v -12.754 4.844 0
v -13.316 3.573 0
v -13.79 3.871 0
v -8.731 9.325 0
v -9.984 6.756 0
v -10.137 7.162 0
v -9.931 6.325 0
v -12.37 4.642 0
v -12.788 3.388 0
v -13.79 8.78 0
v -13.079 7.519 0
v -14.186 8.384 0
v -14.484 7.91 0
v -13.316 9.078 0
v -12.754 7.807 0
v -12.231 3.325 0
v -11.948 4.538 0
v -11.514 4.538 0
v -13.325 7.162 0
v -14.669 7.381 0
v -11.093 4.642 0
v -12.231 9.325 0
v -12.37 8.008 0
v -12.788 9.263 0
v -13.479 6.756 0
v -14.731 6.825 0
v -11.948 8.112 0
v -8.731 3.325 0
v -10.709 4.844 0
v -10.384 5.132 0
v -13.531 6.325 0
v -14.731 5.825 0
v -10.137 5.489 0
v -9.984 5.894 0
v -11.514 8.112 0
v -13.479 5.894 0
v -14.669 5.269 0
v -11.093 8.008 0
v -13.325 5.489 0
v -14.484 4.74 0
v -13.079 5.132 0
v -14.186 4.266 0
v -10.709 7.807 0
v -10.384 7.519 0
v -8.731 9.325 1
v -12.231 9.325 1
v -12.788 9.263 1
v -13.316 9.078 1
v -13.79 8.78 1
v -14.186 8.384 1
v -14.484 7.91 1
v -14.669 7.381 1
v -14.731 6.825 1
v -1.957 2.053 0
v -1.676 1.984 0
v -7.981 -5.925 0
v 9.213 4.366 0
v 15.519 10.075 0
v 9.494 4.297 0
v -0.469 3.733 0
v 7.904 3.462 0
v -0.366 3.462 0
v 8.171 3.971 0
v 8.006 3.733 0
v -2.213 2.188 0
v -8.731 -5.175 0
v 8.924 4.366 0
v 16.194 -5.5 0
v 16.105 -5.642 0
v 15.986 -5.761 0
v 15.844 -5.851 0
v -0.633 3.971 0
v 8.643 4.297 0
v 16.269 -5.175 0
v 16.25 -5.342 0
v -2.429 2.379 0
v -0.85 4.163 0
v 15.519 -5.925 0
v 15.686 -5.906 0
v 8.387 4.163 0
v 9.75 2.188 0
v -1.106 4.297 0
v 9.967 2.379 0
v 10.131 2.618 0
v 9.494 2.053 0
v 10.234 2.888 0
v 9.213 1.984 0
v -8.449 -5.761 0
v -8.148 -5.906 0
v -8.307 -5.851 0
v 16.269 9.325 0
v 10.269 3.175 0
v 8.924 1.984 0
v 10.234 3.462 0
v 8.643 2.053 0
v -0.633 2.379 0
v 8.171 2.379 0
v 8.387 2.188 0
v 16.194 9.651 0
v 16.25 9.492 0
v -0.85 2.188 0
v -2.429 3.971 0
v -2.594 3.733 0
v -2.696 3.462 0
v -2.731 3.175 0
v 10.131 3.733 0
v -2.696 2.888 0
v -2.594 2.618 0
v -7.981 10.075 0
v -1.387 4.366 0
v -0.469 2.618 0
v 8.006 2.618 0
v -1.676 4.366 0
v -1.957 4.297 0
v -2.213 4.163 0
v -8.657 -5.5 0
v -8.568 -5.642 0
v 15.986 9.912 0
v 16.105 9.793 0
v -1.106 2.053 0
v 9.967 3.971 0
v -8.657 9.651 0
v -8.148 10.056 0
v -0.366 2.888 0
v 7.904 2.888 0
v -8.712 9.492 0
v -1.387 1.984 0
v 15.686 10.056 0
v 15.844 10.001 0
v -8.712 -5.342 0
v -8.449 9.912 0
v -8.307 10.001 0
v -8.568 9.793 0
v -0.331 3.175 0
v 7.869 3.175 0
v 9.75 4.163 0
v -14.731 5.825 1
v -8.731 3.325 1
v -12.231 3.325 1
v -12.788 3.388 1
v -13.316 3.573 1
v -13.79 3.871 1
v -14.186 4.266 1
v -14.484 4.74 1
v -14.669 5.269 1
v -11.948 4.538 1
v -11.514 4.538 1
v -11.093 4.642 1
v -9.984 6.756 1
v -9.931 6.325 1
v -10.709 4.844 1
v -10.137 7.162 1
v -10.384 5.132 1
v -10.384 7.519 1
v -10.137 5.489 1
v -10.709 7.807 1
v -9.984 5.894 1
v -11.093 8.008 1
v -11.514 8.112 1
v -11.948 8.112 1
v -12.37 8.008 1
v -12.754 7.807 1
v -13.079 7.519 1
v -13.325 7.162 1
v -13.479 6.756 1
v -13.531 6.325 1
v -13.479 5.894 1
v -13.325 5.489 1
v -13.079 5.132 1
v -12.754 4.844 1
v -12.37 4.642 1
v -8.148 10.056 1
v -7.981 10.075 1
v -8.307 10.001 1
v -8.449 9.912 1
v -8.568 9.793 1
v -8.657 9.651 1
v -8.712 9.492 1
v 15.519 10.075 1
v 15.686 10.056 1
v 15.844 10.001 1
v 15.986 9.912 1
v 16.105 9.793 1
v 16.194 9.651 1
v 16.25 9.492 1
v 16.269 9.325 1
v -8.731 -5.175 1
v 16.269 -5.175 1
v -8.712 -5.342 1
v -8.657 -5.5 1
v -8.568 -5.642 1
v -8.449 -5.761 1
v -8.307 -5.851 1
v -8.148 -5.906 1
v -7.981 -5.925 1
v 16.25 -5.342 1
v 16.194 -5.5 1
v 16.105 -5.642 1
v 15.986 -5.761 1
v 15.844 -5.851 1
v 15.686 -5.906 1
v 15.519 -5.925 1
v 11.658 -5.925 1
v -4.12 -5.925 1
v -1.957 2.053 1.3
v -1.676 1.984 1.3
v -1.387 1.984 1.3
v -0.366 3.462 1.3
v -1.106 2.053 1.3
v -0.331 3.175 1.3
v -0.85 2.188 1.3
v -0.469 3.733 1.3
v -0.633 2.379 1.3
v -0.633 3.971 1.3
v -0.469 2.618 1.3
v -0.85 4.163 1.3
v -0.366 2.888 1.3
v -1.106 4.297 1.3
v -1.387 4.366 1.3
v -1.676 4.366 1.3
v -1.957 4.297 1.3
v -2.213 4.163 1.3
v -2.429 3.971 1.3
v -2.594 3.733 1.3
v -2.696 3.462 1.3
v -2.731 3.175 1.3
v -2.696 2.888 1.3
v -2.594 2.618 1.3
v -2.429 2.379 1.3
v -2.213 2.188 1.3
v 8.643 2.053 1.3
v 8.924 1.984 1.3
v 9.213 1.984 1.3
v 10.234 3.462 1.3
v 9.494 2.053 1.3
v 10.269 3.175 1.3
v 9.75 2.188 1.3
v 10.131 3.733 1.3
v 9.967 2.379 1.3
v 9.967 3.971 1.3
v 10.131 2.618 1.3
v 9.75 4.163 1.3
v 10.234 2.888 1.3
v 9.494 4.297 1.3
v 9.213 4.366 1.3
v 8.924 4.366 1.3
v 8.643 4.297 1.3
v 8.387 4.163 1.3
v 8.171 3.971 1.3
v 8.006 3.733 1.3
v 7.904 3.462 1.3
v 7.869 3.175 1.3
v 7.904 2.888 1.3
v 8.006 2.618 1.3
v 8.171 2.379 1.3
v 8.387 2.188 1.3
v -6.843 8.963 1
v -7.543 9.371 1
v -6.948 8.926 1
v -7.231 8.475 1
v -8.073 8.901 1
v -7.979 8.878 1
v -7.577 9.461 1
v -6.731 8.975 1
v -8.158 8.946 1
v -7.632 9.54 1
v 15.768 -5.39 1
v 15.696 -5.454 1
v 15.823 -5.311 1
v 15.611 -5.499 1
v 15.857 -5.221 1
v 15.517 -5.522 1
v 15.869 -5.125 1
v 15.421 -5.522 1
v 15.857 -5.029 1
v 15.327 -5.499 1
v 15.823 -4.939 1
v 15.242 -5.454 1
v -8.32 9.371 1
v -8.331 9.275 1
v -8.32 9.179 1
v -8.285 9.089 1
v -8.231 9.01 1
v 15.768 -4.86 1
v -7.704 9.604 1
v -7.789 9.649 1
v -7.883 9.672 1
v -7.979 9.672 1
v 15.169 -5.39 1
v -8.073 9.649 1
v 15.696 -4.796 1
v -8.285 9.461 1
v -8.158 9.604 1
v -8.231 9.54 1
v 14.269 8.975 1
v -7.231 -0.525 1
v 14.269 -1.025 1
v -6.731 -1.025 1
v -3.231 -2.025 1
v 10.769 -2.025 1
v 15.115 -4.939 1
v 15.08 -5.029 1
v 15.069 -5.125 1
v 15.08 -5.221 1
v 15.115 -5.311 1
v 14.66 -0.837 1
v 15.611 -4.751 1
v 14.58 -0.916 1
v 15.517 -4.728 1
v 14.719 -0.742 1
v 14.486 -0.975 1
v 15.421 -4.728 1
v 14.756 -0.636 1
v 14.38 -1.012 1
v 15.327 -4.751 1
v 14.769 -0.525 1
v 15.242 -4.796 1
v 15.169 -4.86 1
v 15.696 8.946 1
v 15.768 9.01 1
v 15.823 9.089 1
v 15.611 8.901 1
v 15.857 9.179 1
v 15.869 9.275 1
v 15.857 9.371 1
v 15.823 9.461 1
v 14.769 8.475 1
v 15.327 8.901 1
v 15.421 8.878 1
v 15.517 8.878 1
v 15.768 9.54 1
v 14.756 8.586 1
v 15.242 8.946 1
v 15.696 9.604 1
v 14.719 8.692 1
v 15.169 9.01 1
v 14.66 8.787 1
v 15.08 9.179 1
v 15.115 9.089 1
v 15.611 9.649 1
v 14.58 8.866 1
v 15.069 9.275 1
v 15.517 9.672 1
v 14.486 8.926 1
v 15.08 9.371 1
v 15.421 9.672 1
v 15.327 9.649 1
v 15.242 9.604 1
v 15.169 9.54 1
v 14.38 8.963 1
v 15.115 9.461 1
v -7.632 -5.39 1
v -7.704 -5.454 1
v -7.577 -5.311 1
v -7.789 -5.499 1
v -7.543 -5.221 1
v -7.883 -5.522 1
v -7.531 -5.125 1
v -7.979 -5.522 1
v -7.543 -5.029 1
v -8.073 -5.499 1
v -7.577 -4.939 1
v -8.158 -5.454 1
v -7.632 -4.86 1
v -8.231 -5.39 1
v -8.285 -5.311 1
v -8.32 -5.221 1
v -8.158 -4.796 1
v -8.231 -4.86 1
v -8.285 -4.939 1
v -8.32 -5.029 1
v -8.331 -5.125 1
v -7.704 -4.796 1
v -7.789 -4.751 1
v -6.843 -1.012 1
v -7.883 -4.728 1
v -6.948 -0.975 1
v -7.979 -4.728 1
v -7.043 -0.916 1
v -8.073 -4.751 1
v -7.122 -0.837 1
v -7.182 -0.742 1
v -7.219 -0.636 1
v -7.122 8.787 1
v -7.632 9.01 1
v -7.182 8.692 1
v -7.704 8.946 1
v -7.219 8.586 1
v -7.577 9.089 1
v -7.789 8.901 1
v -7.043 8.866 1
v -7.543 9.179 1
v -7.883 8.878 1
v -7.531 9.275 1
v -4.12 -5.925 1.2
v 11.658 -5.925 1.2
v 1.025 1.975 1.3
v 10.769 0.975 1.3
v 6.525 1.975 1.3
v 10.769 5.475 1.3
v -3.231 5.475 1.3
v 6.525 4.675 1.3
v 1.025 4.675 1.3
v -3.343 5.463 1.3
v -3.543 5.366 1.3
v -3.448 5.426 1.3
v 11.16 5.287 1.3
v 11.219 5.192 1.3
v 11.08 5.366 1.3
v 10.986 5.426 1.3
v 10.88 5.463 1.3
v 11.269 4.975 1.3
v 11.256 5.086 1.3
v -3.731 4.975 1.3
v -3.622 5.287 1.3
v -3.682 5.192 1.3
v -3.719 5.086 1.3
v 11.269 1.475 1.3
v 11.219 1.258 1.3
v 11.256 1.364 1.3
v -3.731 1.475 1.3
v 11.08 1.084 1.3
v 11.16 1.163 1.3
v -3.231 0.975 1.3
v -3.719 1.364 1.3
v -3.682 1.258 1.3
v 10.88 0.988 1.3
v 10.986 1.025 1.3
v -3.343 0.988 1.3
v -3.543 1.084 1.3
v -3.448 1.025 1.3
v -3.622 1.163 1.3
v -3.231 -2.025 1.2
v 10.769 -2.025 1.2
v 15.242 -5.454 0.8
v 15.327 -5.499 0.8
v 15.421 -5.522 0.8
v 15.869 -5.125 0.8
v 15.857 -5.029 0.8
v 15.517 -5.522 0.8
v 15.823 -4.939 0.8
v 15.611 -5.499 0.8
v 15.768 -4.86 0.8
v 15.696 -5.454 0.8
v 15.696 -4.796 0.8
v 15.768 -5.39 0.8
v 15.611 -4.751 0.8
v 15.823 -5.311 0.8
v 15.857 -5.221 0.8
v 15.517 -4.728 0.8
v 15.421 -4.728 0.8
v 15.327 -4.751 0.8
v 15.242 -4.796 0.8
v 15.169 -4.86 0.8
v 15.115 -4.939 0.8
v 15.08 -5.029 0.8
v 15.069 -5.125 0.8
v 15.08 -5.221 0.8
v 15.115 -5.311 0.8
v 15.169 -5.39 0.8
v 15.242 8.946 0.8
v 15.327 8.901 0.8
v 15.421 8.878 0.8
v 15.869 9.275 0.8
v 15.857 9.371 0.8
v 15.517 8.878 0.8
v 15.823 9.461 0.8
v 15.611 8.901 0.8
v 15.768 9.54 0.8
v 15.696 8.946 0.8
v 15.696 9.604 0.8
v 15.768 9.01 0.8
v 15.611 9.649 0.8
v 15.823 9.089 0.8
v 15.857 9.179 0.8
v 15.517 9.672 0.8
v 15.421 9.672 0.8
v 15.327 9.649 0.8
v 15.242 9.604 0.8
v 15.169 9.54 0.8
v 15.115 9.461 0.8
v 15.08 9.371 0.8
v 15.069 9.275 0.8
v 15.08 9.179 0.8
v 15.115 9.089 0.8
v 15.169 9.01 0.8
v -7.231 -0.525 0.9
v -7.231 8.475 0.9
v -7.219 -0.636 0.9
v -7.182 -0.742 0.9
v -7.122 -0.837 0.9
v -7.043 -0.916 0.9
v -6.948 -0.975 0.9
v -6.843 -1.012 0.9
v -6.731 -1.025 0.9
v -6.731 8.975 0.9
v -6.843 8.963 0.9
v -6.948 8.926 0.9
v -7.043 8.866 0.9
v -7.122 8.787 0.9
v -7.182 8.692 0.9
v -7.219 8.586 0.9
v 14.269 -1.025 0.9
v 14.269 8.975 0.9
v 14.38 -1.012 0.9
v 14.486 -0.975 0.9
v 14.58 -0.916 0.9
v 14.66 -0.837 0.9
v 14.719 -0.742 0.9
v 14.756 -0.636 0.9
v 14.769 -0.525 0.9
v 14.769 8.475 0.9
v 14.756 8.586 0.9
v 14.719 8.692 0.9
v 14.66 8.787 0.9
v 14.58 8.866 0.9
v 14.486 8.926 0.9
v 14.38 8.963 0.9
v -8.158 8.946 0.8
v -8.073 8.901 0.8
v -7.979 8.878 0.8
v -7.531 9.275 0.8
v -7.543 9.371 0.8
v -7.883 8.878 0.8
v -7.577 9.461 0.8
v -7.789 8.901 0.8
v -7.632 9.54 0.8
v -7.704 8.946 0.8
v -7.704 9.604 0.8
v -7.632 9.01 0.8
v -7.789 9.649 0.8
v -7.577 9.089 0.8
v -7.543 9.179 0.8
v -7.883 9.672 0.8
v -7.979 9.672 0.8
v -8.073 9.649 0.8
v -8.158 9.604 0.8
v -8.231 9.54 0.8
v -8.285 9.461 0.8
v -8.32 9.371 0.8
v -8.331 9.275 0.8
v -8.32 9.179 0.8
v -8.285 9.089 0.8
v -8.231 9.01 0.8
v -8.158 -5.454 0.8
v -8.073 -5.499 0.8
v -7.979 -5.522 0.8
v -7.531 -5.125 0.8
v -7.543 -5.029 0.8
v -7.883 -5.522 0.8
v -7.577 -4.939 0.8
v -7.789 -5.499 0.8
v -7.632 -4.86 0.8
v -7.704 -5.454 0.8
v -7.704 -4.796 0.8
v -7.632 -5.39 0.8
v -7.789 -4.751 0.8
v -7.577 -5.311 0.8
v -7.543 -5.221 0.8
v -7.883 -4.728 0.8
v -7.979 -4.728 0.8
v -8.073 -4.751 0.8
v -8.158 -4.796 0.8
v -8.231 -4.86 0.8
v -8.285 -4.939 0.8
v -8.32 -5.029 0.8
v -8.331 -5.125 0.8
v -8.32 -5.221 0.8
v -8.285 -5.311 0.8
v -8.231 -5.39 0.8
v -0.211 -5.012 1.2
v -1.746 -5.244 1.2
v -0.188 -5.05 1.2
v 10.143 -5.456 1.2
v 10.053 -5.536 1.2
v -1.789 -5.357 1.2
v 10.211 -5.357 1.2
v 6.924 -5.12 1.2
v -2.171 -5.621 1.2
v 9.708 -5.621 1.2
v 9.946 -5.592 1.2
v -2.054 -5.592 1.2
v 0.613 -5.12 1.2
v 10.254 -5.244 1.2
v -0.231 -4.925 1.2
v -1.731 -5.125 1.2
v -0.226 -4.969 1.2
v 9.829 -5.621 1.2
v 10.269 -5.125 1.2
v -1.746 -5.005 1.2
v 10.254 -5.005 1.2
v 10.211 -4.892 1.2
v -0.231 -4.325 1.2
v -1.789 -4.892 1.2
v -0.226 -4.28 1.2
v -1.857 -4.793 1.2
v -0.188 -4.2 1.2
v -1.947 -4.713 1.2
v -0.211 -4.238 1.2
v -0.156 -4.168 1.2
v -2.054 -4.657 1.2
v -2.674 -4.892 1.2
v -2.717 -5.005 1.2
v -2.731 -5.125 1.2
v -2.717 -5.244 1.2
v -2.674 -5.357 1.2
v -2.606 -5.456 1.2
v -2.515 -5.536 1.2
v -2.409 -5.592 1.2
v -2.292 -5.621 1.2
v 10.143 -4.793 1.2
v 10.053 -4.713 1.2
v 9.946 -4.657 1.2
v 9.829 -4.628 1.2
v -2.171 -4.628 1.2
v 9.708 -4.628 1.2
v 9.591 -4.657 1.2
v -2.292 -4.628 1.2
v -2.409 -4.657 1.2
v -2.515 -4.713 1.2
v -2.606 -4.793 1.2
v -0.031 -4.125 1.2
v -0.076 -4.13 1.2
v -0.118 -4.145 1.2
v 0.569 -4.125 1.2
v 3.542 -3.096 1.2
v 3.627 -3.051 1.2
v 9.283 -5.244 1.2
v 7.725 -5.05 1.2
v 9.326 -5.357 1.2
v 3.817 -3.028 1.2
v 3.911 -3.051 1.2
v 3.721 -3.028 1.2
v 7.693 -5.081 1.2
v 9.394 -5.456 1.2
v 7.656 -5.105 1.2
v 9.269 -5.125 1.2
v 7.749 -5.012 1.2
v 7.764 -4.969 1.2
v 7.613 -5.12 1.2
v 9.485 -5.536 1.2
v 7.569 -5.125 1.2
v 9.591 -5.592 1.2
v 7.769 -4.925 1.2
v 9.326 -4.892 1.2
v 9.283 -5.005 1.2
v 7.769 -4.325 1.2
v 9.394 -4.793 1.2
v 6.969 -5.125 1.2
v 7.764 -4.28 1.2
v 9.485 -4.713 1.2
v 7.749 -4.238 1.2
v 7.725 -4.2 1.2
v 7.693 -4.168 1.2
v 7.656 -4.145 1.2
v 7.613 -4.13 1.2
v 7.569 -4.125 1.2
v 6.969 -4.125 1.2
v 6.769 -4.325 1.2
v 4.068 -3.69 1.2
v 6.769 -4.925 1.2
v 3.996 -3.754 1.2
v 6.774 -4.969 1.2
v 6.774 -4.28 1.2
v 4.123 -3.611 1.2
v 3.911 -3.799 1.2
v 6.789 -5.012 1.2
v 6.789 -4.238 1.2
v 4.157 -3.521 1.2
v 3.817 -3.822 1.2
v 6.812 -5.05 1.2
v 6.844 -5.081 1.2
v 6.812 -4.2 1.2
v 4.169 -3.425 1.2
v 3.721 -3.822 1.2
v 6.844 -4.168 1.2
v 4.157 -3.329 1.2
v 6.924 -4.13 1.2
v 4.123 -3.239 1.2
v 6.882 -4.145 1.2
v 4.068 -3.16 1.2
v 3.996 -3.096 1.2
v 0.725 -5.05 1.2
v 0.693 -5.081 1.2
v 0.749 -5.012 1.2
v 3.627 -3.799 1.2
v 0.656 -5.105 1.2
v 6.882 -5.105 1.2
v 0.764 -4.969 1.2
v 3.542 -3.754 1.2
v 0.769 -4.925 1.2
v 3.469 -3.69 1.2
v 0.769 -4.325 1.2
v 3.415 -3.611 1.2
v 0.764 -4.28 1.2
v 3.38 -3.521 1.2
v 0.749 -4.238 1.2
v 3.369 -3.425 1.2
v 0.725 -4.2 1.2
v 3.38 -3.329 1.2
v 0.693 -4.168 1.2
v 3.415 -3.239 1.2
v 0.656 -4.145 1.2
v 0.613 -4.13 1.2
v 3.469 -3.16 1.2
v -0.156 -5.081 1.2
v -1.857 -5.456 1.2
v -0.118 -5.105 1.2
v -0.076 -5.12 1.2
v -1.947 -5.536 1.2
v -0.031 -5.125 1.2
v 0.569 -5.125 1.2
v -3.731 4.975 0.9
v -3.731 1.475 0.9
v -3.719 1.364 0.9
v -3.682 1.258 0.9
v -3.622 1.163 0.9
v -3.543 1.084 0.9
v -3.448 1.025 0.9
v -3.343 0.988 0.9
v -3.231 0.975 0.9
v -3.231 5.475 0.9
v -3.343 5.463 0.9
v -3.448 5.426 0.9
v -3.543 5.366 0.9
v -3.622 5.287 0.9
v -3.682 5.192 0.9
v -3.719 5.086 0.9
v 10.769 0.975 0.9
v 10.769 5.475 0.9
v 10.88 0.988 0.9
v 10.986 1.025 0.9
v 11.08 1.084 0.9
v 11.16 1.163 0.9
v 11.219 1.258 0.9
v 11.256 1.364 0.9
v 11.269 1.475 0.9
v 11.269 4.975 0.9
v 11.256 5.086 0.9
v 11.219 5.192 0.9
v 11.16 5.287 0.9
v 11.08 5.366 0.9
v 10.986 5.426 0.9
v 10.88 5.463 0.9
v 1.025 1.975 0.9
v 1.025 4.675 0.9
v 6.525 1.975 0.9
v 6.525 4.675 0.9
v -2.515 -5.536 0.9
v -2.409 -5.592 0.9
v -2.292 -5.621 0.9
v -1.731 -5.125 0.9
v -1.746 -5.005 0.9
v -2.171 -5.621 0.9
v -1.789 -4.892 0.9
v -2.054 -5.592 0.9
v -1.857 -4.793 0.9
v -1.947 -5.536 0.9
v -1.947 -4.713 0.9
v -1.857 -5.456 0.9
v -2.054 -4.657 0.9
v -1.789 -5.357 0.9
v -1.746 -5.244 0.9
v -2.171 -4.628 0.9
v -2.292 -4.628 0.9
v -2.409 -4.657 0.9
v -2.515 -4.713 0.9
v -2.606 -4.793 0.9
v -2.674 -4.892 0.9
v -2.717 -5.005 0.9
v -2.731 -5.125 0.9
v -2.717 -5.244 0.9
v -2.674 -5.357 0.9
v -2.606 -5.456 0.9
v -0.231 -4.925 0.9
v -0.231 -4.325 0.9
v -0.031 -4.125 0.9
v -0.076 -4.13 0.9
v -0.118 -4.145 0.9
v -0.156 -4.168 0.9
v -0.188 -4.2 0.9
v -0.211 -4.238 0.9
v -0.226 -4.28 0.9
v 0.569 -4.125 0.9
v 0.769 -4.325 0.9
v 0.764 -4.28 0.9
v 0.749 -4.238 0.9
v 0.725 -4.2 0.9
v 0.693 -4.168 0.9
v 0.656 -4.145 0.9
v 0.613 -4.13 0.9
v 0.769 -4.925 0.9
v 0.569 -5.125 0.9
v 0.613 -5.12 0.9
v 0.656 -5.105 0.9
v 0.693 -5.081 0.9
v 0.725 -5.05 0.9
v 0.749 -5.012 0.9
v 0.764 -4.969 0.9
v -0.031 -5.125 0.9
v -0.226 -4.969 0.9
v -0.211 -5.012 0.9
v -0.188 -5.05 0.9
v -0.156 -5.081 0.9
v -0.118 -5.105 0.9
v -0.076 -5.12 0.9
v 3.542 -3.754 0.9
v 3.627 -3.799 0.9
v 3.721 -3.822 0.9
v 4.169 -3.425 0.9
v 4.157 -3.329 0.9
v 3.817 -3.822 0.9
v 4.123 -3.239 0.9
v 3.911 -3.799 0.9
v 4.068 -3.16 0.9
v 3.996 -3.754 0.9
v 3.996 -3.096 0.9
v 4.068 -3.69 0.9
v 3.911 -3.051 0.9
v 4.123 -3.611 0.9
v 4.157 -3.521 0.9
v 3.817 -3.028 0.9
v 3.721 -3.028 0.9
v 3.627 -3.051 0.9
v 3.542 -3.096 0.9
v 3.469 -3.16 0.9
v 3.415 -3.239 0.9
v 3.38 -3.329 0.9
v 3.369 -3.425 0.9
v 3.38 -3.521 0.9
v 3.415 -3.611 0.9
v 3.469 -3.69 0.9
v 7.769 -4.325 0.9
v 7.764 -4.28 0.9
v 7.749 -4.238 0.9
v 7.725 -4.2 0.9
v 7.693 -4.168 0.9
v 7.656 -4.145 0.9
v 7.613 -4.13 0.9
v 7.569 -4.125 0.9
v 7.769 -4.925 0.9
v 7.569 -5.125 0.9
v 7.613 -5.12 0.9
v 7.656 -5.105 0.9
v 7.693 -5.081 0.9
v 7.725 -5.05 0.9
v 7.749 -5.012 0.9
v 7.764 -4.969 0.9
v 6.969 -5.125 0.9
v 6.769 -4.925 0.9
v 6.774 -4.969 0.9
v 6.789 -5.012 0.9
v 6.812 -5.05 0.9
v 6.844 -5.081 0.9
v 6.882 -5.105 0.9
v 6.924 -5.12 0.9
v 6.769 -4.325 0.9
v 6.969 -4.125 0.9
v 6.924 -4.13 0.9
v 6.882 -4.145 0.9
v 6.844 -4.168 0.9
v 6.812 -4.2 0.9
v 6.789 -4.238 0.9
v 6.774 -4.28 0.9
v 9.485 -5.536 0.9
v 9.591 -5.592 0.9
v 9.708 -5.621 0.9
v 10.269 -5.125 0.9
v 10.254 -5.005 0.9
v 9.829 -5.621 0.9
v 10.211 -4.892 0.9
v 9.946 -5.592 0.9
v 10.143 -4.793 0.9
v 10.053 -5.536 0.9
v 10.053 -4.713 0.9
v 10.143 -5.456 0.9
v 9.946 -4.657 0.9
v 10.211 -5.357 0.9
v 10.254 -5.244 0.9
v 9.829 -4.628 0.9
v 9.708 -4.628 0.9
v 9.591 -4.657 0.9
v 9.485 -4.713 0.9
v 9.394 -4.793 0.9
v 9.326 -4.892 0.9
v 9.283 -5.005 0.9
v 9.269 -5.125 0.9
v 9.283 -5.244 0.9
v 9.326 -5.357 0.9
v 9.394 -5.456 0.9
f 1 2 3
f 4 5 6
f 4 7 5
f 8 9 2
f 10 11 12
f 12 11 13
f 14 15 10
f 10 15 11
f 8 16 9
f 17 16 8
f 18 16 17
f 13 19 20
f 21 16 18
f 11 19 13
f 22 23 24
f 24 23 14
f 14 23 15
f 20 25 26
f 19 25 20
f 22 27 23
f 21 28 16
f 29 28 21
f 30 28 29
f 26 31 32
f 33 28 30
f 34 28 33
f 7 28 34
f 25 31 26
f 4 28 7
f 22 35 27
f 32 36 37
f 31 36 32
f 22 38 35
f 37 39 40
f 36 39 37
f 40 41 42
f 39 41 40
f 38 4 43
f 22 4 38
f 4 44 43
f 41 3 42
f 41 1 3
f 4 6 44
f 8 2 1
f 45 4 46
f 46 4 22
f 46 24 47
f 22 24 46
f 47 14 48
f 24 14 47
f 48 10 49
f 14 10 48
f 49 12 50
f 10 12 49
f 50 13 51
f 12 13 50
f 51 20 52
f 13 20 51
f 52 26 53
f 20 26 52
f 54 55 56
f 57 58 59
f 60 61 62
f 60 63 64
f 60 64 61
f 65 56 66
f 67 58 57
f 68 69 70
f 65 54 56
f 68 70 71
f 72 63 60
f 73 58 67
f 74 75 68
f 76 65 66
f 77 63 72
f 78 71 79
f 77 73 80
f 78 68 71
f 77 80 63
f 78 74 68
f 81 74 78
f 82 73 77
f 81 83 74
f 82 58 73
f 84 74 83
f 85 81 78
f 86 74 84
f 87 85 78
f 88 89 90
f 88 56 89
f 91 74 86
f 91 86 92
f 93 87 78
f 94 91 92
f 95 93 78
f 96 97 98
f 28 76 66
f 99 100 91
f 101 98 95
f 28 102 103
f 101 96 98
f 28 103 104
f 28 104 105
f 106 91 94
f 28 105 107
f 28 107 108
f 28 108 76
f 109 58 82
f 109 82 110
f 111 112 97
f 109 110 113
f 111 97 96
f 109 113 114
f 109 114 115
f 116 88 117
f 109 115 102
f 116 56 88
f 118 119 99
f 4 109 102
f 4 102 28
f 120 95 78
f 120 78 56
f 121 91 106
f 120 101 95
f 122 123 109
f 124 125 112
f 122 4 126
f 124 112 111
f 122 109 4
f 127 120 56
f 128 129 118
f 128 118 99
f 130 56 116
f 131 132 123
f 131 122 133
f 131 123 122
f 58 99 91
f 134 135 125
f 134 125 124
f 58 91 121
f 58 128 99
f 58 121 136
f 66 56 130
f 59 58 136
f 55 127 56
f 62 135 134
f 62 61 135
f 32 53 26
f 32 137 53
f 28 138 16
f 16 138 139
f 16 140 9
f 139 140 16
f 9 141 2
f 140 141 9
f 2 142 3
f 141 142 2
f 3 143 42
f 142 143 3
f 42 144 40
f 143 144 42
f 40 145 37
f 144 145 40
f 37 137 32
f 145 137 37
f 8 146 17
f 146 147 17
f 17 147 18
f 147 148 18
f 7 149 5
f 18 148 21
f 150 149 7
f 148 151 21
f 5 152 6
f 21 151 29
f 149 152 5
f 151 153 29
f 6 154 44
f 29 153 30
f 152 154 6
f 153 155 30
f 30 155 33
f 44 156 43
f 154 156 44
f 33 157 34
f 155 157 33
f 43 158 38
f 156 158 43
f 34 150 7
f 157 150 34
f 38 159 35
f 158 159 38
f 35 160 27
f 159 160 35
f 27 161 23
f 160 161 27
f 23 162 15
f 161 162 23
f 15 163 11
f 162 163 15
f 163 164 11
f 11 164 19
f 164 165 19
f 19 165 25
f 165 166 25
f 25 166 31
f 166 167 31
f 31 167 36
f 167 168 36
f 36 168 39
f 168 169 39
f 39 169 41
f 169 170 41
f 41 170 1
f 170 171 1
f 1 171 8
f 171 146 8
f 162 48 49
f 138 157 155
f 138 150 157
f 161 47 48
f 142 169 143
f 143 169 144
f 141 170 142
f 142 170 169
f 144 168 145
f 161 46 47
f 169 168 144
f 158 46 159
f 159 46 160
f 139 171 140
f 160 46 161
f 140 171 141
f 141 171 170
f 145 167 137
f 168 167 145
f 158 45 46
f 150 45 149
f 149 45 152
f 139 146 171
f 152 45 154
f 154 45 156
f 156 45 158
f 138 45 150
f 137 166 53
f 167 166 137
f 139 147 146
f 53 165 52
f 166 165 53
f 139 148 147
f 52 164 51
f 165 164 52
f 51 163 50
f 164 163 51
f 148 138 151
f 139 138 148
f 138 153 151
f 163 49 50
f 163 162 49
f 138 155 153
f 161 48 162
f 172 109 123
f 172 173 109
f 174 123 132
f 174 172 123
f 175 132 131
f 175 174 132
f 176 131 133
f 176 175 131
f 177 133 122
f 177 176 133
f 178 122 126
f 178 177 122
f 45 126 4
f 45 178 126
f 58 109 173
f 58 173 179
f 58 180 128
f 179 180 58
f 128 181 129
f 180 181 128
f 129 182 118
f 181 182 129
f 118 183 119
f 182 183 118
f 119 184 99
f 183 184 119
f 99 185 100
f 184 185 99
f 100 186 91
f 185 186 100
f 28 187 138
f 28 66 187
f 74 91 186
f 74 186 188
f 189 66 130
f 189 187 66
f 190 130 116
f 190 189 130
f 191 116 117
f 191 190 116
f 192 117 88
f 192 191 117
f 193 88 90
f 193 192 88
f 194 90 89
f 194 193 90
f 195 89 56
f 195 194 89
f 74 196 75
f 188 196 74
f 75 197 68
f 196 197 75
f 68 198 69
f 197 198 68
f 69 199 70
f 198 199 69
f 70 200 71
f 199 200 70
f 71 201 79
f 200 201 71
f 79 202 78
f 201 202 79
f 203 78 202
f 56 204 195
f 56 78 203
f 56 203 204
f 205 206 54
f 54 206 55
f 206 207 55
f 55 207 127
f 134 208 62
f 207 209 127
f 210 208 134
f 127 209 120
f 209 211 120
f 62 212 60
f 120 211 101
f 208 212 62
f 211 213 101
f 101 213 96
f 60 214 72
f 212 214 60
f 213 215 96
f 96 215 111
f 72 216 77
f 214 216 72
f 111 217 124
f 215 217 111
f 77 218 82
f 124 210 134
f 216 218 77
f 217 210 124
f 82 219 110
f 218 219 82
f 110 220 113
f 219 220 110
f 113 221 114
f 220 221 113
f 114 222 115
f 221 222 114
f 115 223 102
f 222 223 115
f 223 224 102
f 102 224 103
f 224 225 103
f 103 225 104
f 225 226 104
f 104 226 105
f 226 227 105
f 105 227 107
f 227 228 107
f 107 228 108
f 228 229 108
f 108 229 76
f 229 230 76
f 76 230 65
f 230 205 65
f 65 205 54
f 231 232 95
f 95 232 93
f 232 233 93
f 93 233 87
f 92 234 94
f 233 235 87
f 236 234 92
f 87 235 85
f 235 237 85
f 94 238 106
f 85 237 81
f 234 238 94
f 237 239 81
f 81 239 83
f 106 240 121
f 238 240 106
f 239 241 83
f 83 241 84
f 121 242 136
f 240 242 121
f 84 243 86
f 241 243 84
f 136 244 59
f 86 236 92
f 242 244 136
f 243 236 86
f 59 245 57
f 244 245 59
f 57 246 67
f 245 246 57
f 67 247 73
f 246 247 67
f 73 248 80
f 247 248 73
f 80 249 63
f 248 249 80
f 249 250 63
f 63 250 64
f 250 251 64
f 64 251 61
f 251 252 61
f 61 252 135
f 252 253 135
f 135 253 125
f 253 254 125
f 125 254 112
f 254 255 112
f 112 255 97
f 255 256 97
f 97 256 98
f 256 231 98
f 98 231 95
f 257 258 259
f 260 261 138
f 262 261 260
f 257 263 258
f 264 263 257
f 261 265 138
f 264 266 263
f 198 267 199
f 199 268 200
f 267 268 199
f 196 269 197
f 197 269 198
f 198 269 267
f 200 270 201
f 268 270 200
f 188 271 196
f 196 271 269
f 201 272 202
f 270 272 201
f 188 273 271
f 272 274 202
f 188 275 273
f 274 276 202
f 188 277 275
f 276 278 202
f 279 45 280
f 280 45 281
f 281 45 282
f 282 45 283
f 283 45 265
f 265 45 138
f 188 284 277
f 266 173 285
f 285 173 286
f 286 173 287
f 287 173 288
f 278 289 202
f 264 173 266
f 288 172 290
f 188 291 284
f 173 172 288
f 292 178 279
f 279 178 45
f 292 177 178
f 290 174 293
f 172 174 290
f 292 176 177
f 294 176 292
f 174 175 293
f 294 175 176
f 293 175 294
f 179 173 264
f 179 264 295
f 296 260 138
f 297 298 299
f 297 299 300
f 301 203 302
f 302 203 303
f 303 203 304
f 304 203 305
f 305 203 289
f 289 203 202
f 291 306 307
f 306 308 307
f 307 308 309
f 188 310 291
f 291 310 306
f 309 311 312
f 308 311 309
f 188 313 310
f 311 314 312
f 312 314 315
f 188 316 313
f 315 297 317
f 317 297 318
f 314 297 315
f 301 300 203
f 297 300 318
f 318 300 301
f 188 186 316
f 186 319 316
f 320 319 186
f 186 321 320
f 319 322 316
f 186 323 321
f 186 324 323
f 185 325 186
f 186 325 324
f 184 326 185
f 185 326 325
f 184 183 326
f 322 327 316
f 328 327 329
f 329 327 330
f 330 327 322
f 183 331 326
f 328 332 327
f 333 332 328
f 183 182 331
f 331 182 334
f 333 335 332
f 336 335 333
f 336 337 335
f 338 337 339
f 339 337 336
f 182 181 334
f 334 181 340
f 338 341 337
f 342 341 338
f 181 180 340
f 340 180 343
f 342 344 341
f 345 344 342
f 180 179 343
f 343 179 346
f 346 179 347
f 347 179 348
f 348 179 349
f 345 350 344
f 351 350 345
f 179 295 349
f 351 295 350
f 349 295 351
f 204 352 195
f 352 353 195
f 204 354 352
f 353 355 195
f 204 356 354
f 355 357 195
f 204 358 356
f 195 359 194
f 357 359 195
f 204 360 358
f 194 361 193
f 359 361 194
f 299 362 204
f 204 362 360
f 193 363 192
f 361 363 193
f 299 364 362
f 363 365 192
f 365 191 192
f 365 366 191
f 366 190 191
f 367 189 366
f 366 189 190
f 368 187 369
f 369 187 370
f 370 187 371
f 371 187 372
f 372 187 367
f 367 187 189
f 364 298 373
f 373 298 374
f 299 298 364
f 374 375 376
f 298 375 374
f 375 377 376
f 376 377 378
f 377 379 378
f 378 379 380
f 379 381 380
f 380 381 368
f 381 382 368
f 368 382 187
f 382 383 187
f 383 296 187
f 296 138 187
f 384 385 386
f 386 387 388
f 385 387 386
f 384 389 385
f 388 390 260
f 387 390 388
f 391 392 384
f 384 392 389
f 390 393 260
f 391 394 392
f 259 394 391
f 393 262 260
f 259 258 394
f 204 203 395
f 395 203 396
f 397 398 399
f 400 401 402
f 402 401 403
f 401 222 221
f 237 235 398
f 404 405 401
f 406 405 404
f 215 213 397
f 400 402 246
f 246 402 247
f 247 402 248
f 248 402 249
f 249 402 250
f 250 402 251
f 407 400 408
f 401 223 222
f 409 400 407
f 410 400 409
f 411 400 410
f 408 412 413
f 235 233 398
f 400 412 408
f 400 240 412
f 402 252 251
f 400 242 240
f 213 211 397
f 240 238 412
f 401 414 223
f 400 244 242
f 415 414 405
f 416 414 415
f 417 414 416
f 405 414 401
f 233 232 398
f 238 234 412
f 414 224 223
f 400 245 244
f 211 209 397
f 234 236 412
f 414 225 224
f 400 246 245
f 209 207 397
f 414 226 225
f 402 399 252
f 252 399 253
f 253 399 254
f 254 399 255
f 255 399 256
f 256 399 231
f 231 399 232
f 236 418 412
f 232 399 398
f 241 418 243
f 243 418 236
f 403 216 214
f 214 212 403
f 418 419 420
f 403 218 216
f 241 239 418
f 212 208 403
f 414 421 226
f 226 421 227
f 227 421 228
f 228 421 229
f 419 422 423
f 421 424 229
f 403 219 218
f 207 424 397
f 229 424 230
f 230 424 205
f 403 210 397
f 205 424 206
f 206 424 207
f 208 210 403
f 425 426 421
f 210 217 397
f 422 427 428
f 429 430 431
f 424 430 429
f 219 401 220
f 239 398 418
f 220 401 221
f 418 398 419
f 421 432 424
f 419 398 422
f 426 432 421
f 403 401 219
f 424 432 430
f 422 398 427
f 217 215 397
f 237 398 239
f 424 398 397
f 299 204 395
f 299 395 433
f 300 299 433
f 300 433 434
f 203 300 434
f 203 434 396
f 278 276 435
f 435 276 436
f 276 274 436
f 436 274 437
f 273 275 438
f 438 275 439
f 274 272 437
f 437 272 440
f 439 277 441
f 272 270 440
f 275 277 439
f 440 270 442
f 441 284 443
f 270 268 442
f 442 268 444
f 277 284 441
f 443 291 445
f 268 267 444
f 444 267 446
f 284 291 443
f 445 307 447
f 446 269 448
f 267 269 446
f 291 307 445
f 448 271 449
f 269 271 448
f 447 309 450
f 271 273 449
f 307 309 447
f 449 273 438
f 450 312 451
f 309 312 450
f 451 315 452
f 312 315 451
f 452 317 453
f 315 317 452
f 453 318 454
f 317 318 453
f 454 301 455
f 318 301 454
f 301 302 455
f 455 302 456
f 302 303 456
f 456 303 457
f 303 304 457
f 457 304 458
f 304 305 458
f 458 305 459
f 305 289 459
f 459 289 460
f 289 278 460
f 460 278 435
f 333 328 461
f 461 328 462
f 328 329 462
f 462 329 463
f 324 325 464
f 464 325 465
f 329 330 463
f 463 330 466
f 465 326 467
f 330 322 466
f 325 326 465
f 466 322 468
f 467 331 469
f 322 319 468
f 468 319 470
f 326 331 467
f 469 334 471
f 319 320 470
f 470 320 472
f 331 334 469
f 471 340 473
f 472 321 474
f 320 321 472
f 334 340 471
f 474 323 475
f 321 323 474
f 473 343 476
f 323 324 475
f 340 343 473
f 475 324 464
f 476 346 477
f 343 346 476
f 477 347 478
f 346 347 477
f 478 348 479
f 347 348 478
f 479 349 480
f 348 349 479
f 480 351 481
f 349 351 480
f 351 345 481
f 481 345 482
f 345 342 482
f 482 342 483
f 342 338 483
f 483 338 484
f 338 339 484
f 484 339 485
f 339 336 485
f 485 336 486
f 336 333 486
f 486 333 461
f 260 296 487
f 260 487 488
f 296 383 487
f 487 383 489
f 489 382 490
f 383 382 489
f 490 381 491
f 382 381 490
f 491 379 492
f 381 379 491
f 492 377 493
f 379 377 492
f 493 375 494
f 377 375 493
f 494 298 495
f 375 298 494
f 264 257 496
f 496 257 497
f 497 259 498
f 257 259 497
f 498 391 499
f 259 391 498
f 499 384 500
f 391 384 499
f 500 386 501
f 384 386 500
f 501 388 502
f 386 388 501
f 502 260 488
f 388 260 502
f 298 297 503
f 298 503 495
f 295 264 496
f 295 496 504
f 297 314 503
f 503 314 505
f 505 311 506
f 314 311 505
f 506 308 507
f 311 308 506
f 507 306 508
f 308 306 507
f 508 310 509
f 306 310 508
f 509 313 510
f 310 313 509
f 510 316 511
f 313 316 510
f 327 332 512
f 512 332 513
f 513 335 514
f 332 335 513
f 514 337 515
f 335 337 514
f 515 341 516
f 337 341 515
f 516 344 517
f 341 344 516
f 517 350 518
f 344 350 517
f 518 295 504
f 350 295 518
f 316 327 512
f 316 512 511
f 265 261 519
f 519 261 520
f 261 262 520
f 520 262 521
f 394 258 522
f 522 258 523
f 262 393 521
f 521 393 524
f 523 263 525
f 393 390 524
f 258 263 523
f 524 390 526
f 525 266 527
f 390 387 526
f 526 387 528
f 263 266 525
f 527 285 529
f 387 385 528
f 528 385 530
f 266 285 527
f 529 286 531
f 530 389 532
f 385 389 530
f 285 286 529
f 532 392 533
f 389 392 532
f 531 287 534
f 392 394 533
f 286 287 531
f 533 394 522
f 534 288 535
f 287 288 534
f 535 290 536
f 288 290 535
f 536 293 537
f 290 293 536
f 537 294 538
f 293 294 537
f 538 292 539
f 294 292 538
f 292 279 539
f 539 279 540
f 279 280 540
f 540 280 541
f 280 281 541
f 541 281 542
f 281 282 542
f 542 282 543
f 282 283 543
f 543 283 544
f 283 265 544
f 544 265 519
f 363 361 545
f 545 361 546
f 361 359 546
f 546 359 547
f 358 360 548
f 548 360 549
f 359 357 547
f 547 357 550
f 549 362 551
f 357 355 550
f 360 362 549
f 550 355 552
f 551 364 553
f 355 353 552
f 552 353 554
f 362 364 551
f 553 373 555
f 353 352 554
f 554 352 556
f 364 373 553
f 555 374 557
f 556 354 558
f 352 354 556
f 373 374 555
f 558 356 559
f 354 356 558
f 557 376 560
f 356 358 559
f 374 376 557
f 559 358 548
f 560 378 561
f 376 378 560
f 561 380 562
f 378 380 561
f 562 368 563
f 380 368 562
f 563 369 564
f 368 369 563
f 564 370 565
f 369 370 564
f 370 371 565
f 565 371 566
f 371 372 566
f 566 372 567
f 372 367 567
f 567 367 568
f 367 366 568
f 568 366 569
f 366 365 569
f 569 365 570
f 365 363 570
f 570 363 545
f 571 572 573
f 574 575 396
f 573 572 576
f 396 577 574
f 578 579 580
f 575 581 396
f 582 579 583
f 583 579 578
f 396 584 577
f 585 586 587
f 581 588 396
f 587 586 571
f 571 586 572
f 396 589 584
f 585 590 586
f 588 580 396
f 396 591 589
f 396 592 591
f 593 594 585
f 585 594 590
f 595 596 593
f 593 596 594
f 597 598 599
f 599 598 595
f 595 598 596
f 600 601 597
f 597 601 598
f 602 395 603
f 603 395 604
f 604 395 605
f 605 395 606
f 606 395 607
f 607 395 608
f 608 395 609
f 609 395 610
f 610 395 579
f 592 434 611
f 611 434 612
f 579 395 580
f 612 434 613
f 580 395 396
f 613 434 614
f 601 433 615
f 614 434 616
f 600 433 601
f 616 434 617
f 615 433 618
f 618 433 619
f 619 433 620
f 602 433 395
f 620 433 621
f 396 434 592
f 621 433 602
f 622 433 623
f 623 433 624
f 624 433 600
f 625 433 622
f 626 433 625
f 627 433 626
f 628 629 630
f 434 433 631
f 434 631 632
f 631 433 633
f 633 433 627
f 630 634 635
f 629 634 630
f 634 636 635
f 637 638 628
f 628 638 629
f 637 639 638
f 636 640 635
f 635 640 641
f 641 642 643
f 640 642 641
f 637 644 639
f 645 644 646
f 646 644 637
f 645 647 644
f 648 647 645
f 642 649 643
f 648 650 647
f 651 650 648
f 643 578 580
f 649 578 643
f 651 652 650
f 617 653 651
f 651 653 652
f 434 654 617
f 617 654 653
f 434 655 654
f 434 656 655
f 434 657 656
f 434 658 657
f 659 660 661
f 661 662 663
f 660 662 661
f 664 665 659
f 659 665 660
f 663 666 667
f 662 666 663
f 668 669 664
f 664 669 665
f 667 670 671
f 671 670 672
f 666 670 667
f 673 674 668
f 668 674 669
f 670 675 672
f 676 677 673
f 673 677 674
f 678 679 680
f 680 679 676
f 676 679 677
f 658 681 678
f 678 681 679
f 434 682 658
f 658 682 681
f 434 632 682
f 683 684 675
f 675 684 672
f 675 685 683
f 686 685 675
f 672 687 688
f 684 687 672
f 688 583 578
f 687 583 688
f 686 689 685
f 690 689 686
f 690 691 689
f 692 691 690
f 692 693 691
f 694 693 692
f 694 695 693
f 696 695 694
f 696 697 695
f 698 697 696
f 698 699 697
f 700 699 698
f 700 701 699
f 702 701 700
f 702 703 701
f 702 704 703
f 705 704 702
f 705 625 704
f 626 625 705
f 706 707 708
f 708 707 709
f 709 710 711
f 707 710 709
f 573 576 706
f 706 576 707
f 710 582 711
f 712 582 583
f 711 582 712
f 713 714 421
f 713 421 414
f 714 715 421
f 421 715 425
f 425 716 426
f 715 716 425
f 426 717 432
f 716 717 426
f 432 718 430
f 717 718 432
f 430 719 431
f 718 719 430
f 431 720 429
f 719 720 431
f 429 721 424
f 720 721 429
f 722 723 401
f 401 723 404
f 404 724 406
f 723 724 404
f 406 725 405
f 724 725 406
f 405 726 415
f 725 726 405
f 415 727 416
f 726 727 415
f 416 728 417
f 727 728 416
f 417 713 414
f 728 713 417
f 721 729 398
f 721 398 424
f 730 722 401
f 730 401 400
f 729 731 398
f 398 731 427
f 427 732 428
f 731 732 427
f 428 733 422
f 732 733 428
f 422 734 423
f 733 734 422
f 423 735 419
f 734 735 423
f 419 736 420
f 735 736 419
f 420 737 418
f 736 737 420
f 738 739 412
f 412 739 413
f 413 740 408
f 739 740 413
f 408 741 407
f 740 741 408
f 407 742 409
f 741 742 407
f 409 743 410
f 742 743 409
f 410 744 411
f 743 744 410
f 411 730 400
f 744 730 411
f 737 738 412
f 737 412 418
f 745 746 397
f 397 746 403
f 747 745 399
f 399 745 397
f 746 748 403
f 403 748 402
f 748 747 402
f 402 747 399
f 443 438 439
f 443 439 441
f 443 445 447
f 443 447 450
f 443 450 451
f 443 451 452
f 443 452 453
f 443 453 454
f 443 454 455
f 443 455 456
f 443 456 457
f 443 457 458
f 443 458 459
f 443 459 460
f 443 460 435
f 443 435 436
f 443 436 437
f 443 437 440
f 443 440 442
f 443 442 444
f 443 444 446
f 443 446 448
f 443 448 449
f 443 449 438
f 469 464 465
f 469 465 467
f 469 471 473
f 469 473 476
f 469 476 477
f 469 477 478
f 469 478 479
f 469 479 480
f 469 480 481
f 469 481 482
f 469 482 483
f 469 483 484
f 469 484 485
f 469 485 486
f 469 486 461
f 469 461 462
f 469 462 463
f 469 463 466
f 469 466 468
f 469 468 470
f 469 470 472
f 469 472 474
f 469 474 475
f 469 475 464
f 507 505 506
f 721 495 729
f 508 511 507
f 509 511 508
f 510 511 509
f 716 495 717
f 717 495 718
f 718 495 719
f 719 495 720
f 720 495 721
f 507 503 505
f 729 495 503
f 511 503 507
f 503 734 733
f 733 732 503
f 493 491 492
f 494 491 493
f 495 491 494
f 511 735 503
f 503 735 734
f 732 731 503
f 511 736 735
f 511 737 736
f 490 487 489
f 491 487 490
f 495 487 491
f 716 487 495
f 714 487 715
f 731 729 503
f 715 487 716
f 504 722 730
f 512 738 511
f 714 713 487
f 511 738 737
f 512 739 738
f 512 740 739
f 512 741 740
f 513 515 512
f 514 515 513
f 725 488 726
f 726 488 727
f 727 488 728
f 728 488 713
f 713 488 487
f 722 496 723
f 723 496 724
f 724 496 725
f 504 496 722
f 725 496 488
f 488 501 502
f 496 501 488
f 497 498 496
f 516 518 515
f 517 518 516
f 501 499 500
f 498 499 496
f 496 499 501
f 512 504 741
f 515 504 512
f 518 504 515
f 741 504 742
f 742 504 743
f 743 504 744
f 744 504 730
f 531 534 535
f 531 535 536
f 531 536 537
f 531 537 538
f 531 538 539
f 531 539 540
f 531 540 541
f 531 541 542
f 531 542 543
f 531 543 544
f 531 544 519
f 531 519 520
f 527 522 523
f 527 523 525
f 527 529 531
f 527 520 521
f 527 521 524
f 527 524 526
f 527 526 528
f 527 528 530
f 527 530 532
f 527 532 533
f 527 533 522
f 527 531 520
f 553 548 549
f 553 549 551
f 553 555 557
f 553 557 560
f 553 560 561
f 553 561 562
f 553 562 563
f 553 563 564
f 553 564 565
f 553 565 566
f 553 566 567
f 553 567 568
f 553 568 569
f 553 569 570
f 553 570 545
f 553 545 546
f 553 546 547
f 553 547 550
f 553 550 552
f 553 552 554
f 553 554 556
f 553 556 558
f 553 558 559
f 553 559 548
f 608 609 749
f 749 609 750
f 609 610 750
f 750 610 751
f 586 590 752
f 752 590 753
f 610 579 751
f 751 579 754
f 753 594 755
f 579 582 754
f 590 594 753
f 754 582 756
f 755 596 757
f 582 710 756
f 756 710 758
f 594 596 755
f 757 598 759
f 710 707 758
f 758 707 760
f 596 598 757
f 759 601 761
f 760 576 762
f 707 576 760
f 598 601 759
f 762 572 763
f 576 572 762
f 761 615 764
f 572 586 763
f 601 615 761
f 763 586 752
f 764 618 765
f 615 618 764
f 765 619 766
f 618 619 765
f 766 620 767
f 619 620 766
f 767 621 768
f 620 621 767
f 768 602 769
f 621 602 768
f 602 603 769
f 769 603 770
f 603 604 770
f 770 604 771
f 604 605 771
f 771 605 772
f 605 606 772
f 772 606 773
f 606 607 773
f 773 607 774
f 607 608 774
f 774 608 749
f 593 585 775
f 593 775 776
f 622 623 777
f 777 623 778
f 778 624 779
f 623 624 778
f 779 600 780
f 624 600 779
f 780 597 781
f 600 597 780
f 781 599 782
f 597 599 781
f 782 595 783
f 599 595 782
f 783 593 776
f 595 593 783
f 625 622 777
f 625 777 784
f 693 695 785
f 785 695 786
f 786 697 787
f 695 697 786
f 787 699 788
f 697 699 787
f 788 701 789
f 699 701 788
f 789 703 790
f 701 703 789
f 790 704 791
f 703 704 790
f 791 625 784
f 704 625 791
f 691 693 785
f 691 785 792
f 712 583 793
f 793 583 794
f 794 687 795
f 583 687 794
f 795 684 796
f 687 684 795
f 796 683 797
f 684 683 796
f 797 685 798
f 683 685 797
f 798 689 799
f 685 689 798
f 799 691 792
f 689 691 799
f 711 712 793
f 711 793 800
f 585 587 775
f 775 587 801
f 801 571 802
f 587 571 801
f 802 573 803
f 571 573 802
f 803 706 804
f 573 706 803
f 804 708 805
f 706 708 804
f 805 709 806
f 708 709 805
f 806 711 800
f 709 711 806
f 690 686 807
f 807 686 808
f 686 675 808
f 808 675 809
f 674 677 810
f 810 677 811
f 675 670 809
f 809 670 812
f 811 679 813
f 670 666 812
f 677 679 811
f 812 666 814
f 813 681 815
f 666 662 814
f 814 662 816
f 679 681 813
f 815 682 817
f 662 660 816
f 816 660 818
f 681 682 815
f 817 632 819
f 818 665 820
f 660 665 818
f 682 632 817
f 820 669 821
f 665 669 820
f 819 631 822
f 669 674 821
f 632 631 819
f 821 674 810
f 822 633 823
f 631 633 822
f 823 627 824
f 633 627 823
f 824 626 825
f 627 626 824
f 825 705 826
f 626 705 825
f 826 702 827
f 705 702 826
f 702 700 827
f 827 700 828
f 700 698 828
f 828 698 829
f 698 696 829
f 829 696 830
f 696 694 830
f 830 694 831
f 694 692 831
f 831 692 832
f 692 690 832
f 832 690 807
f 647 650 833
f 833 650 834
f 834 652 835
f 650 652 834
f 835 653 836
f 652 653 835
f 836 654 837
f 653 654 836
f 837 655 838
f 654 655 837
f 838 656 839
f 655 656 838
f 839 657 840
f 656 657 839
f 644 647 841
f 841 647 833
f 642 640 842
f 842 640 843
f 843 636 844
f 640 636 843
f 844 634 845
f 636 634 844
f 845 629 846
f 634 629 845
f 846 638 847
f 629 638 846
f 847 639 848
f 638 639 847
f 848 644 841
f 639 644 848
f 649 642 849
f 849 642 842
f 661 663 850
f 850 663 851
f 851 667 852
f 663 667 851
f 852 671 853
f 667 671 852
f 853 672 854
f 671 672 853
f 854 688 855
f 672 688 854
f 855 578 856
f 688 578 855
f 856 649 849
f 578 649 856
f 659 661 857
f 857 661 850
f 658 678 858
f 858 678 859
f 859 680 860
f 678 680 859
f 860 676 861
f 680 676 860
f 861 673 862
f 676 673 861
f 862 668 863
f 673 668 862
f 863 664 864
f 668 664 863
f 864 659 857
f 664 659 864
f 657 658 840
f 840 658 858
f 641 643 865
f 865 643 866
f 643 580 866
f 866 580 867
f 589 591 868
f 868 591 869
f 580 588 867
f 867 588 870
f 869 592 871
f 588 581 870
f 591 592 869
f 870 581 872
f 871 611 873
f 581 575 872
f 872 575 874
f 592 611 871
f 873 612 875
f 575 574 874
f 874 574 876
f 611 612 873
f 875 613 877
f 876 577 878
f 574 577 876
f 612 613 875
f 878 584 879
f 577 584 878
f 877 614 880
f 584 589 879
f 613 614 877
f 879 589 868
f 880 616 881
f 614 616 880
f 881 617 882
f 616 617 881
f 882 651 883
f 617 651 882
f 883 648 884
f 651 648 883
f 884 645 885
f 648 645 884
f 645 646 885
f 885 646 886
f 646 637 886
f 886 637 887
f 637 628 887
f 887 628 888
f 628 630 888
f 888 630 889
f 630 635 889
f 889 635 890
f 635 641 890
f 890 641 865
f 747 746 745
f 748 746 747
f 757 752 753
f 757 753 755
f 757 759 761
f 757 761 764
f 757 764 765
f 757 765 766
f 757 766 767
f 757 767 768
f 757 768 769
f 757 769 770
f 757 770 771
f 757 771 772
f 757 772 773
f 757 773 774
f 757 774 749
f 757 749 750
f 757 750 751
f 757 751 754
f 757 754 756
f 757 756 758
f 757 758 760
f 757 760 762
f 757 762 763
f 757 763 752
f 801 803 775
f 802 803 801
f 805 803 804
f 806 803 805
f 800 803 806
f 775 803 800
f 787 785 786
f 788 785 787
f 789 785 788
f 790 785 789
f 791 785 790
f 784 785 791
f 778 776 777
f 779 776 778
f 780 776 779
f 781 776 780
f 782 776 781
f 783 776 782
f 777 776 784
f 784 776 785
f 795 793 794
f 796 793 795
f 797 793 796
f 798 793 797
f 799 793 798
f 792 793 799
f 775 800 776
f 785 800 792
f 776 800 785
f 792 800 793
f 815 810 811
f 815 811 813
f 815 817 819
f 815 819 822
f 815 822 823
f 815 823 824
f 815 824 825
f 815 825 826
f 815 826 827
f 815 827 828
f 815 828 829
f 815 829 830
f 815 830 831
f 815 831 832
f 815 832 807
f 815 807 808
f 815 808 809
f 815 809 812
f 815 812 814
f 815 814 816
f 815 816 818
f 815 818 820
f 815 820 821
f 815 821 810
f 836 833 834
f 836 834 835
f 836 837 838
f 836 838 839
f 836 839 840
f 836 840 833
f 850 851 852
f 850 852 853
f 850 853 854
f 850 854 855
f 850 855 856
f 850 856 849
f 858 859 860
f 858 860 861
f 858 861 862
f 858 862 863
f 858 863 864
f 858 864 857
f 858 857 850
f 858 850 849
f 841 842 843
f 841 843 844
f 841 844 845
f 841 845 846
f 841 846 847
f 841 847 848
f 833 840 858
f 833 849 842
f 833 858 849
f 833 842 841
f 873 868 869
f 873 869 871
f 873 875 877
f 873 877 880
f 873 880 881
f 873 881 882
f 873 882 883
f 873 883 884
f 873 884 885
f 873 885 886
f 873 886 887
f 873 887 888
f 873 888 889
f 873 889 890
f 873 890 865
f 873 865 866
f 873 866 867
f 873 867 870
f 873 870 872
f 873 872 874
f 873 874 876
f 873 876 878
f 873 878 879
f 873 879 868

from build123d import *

# Parameters (mm, degrees)
SKETCH_W        = 25
SKETCH_H        = 16
PAD_DEPTH       = 1
POCKET_DEPTH    = 0.1
FILLET_R        = 0.75
PAD001_DEPTH    = 0.2
SKETCH003_W     = 5.5
SKETCH003_H     = 2.7
PAD002_DEPTH    = 0.4
SKETCH004_R     = 1.2
POCKET001_DEPTH = 5
SKETCH005_R     = 0.4
POCKET002_DEPTH = 0.2
SKETCH006_R     = 0.4
SKETCH006_R_2   = 0.5
POCKET003_DEPTH = 0.3
SKETCH007_W     = 6
SKETCH007_H     = 1
PAD003_DEPTH    = 6
FILLET001_R     = 2.5
SKETCH008_R     = 1.8
POCKET004_DEPTH = 5


with BuildPart() as part:
    # Sketch → Pad (new body)
    with BuildSketch(Plane.XY):
        with Locations((3.768729, 2.075196)):
            Rectangle(SKETCH_W, SKETCH_H)
    extrude(amount=PAD_DEPTH)

    # Sketch001 (on Face6 of Pad) → Pocket (cut)
    with BuildSketch(Plane.XY.offset(1)):
        with BuildLine():
            Line((-6.731271, 8.975196), (14.268729, 8.975196))
            ThreePointArc((14.768729, 8.475196), (14.622283, 8.82875), (14.268729, 8.975196))
            Line((14.768729, 8.475196), (14.768729, -0.524804))
            ThreePointArc((14.268729, -1.024804), (14.622283, -0.878357), (14.768729, -0.524804))
            Line((14.268729, -1.024804), (-6.731271, -1.024804))
            ThreePointArc((-7.231271, -0.524804), (-7.084824, -0.878357), (-6.731271, -1.024804))
            Line((-7.231271, -0.524804), (-7.231271, 8.475196))
            ThreePointArc((-6.731271, 8.975196), (-7.084824, 8.82875), (-7.231271, 8.475196))
        make_face()
    extrude(amount=-POCKET_DEPTH, mode=Mode.SUBTRACT)

    # Fillet
    fillet_edges = [part.edges().sort_by_distance(p)[0] for p in [
        (-8.731271, 10.075196, 0.5),
        (-8.731271, -5.924804, 0.5),
        (16.268729, -5.924804, 0.5),
        (16.268729, 10.075196, 0.5),
    ]]
    fillet(fillet_edges, radius=FILLET_R)

    # Sketch002 (on Face5 of Fillet) → Pad001 (join)
    with BuildSketch(Plane.XY.offset(1)):
        Polygon((-4.12009, -5.924804), (-3.231271, -2.024804), (10.768729, -2.024804), (11.657549, -5.924804), align=None)
    extrude(amount=PAD001_DEPTH)

    # Sketch003 (on Face24 of Pad001) → Pad002 (join)
    with BuildSketch(Plane.XY.offset(0.9)):
        with BuildLine():
            Line((-3.231271, 5.475196), (10.768729, 5.475196))
            ThreePointArc((11.268729, 4.975196), (11.122283, 5.32875), (10.768729, 5.475196))
            Line((11.268729, 4.975196), (11.268729, 1.475196))
            ThreePointArc((10.768729, 0.975196), (11.122283, 1.121643), (11.268729, 1.475196))
            Line((10.768729, 0.975196), (-3.231271, 0.975196))
            ThreePointArc((-3.731271, 1.475196), (-3.584824, 1.121643), (-3.231271, 0.975196))
            Line((-3.731271, 1.475196), (-3.731271, 4.975196))
            ThreePointArc((-3.231271, 5.475196), (-3.584824, 5.32875), (-3.731271, 4.975196))
        make_face()
        with Locations((3.775376, 3.325196)):
            Rectangle(SKETCH003_W, SKETCH003_H, mode=Mode.SUBTRACT)
    extrude(amount=PAD002_DEPTH)

    # Sketch004 (on Face33 of Pad002) → Pocket001 (cut)
    with BuildSketch(Plane.XY.offset(1.3)):
        with Locations((-1.531271, 3.175196)):
            Circle(SKETCH004_R)
        with Locations((9.068729, 3.175196)):
            Circle(SKETCH004_R)
    extrude(amount=-POCKET001_DEPTH, mode=Mode.SUBTRACT)

    # Sketch005 (on Face5 of Pocket001) → Pocket002 (cut)
    with BuildSketch(Plane.XY.offset(1)):
        with Locations((-7.931271, 9.275196)):
            Circle(SKETCH005_R)
        with Locations((-7.931271, -5.124804)):
            Circle(SKETCH005_R)
        with Locations((15.468729, -5.124804)):
            Circle(SKETCH005_R)
        with Locations((15.468729, 9.275196)):
            Circle(SKETCH005_R)
    extrude(amount=-POCKET002_DEPTH, mode=Mode.SUBTRACT)

    # Sketch006 (on Face30 of Pocket002) → Pocket003 (cut)
    with BuildSketch(Plane.XY.offset(1.2)):
        with Locations((3.768729, -3.424804)):
            Circle(SKETCH006_R)
        with Locations((-2.231271, -5.124804)):
            Circle(SKETCH006_R_2)
        with Locations((9.768729, -5.124804)):
            Circle(SKETCH006_R_2)
        with BuildLine():
            Line((-0.031271, -4.124804), (0.568729, -4.124804))
            ThreePointArc((0.768729, -4.324804), (0.710151, -4.183382), (0.568729, -4.124804))
            Line((0.768729, -4.324804), (0.768729, -4.924804))
            ThreePointArc((0.568729, -5.124804), (0.710151, -5.066225), (0.768729, -4.924804))
            Line((0.568729, -5.124804), (-0.031271, -5.124804))
            ThreePointArc((-0.231271, -4.924804), (-0.172692, -5.066225), (-0.031271, -5.124804))
            Line((-0.231271, -4.924804), (-0.231271, -4.324804))
            ThreePointArc((-0.031271, -4.124804), (-0.172692, -4.183382), (-0.231271, -4.324804))
        make_face()
        with BuildLine():
            Line((7.568729, -4.124804), (6.968729, -4.124804))
            ThreePointArc((6.968729, -4.124804), (6.827308, -4.183382), (6.768729, -4.324804))
            Line((6.768729, -4.324804), (6.768729, -4.924804))
            ThreePointArc((6.768729, -4.924804), (6.827308, -5.066225), (6.968729, -5.124804))
            Line((6.968729, -5.124804), (7.568729, -5.124804))
            ThreePointArc((7.568729, -5.124804), (7.710151, -5.066225), (7.768729, -4.924804))
            Line((7.768729, -4.924804), (7.768729, -4.324804))
            ThreePointArc((7.768729, -4.324804), (7.710151, -4.183382), (7.568729, -4.124804))
        make_face()
    extrude(amount=-POCKET003_DEPTH, mode=Mode.SUBTRACT)

    # Sketch007 (on Face6 of Pocket003) → Pad003 (join)
    with BuildSketch(Plane(origin=(-8.731271, 0, 0), x_dir=(0, -1, 0), z_dir=(-1, 0, 0))):
        with Locations((-6.325196, 0.5)):
            Rectangle(SKETCH007_W, SKETCH007_H)
    extrude(amount=PAD003_DEPTH)

    # Fillet001
    fillet001_edges = [part.edges().sort_by_distance(p)[0] for p in [
        (-14.731271, 3.325196, 0.5),
        (-14.731271, 9.325196, 0.5),
    ]]
    fillet(fillet001_edges, radius=FILLET001_R)

    # Sketch008 (on Face8 of Fillet001) → Pocket004 (cut)
    with BuildSketch(Plane.XY.offset(1)):
        with Locations((-11.731271, 6.325196)):
            Circle(SKETCH008_R)
    extrude(amount=-POCKET004_DEPTH, mode=Mode.SUBTRACT)


solid = part.part
